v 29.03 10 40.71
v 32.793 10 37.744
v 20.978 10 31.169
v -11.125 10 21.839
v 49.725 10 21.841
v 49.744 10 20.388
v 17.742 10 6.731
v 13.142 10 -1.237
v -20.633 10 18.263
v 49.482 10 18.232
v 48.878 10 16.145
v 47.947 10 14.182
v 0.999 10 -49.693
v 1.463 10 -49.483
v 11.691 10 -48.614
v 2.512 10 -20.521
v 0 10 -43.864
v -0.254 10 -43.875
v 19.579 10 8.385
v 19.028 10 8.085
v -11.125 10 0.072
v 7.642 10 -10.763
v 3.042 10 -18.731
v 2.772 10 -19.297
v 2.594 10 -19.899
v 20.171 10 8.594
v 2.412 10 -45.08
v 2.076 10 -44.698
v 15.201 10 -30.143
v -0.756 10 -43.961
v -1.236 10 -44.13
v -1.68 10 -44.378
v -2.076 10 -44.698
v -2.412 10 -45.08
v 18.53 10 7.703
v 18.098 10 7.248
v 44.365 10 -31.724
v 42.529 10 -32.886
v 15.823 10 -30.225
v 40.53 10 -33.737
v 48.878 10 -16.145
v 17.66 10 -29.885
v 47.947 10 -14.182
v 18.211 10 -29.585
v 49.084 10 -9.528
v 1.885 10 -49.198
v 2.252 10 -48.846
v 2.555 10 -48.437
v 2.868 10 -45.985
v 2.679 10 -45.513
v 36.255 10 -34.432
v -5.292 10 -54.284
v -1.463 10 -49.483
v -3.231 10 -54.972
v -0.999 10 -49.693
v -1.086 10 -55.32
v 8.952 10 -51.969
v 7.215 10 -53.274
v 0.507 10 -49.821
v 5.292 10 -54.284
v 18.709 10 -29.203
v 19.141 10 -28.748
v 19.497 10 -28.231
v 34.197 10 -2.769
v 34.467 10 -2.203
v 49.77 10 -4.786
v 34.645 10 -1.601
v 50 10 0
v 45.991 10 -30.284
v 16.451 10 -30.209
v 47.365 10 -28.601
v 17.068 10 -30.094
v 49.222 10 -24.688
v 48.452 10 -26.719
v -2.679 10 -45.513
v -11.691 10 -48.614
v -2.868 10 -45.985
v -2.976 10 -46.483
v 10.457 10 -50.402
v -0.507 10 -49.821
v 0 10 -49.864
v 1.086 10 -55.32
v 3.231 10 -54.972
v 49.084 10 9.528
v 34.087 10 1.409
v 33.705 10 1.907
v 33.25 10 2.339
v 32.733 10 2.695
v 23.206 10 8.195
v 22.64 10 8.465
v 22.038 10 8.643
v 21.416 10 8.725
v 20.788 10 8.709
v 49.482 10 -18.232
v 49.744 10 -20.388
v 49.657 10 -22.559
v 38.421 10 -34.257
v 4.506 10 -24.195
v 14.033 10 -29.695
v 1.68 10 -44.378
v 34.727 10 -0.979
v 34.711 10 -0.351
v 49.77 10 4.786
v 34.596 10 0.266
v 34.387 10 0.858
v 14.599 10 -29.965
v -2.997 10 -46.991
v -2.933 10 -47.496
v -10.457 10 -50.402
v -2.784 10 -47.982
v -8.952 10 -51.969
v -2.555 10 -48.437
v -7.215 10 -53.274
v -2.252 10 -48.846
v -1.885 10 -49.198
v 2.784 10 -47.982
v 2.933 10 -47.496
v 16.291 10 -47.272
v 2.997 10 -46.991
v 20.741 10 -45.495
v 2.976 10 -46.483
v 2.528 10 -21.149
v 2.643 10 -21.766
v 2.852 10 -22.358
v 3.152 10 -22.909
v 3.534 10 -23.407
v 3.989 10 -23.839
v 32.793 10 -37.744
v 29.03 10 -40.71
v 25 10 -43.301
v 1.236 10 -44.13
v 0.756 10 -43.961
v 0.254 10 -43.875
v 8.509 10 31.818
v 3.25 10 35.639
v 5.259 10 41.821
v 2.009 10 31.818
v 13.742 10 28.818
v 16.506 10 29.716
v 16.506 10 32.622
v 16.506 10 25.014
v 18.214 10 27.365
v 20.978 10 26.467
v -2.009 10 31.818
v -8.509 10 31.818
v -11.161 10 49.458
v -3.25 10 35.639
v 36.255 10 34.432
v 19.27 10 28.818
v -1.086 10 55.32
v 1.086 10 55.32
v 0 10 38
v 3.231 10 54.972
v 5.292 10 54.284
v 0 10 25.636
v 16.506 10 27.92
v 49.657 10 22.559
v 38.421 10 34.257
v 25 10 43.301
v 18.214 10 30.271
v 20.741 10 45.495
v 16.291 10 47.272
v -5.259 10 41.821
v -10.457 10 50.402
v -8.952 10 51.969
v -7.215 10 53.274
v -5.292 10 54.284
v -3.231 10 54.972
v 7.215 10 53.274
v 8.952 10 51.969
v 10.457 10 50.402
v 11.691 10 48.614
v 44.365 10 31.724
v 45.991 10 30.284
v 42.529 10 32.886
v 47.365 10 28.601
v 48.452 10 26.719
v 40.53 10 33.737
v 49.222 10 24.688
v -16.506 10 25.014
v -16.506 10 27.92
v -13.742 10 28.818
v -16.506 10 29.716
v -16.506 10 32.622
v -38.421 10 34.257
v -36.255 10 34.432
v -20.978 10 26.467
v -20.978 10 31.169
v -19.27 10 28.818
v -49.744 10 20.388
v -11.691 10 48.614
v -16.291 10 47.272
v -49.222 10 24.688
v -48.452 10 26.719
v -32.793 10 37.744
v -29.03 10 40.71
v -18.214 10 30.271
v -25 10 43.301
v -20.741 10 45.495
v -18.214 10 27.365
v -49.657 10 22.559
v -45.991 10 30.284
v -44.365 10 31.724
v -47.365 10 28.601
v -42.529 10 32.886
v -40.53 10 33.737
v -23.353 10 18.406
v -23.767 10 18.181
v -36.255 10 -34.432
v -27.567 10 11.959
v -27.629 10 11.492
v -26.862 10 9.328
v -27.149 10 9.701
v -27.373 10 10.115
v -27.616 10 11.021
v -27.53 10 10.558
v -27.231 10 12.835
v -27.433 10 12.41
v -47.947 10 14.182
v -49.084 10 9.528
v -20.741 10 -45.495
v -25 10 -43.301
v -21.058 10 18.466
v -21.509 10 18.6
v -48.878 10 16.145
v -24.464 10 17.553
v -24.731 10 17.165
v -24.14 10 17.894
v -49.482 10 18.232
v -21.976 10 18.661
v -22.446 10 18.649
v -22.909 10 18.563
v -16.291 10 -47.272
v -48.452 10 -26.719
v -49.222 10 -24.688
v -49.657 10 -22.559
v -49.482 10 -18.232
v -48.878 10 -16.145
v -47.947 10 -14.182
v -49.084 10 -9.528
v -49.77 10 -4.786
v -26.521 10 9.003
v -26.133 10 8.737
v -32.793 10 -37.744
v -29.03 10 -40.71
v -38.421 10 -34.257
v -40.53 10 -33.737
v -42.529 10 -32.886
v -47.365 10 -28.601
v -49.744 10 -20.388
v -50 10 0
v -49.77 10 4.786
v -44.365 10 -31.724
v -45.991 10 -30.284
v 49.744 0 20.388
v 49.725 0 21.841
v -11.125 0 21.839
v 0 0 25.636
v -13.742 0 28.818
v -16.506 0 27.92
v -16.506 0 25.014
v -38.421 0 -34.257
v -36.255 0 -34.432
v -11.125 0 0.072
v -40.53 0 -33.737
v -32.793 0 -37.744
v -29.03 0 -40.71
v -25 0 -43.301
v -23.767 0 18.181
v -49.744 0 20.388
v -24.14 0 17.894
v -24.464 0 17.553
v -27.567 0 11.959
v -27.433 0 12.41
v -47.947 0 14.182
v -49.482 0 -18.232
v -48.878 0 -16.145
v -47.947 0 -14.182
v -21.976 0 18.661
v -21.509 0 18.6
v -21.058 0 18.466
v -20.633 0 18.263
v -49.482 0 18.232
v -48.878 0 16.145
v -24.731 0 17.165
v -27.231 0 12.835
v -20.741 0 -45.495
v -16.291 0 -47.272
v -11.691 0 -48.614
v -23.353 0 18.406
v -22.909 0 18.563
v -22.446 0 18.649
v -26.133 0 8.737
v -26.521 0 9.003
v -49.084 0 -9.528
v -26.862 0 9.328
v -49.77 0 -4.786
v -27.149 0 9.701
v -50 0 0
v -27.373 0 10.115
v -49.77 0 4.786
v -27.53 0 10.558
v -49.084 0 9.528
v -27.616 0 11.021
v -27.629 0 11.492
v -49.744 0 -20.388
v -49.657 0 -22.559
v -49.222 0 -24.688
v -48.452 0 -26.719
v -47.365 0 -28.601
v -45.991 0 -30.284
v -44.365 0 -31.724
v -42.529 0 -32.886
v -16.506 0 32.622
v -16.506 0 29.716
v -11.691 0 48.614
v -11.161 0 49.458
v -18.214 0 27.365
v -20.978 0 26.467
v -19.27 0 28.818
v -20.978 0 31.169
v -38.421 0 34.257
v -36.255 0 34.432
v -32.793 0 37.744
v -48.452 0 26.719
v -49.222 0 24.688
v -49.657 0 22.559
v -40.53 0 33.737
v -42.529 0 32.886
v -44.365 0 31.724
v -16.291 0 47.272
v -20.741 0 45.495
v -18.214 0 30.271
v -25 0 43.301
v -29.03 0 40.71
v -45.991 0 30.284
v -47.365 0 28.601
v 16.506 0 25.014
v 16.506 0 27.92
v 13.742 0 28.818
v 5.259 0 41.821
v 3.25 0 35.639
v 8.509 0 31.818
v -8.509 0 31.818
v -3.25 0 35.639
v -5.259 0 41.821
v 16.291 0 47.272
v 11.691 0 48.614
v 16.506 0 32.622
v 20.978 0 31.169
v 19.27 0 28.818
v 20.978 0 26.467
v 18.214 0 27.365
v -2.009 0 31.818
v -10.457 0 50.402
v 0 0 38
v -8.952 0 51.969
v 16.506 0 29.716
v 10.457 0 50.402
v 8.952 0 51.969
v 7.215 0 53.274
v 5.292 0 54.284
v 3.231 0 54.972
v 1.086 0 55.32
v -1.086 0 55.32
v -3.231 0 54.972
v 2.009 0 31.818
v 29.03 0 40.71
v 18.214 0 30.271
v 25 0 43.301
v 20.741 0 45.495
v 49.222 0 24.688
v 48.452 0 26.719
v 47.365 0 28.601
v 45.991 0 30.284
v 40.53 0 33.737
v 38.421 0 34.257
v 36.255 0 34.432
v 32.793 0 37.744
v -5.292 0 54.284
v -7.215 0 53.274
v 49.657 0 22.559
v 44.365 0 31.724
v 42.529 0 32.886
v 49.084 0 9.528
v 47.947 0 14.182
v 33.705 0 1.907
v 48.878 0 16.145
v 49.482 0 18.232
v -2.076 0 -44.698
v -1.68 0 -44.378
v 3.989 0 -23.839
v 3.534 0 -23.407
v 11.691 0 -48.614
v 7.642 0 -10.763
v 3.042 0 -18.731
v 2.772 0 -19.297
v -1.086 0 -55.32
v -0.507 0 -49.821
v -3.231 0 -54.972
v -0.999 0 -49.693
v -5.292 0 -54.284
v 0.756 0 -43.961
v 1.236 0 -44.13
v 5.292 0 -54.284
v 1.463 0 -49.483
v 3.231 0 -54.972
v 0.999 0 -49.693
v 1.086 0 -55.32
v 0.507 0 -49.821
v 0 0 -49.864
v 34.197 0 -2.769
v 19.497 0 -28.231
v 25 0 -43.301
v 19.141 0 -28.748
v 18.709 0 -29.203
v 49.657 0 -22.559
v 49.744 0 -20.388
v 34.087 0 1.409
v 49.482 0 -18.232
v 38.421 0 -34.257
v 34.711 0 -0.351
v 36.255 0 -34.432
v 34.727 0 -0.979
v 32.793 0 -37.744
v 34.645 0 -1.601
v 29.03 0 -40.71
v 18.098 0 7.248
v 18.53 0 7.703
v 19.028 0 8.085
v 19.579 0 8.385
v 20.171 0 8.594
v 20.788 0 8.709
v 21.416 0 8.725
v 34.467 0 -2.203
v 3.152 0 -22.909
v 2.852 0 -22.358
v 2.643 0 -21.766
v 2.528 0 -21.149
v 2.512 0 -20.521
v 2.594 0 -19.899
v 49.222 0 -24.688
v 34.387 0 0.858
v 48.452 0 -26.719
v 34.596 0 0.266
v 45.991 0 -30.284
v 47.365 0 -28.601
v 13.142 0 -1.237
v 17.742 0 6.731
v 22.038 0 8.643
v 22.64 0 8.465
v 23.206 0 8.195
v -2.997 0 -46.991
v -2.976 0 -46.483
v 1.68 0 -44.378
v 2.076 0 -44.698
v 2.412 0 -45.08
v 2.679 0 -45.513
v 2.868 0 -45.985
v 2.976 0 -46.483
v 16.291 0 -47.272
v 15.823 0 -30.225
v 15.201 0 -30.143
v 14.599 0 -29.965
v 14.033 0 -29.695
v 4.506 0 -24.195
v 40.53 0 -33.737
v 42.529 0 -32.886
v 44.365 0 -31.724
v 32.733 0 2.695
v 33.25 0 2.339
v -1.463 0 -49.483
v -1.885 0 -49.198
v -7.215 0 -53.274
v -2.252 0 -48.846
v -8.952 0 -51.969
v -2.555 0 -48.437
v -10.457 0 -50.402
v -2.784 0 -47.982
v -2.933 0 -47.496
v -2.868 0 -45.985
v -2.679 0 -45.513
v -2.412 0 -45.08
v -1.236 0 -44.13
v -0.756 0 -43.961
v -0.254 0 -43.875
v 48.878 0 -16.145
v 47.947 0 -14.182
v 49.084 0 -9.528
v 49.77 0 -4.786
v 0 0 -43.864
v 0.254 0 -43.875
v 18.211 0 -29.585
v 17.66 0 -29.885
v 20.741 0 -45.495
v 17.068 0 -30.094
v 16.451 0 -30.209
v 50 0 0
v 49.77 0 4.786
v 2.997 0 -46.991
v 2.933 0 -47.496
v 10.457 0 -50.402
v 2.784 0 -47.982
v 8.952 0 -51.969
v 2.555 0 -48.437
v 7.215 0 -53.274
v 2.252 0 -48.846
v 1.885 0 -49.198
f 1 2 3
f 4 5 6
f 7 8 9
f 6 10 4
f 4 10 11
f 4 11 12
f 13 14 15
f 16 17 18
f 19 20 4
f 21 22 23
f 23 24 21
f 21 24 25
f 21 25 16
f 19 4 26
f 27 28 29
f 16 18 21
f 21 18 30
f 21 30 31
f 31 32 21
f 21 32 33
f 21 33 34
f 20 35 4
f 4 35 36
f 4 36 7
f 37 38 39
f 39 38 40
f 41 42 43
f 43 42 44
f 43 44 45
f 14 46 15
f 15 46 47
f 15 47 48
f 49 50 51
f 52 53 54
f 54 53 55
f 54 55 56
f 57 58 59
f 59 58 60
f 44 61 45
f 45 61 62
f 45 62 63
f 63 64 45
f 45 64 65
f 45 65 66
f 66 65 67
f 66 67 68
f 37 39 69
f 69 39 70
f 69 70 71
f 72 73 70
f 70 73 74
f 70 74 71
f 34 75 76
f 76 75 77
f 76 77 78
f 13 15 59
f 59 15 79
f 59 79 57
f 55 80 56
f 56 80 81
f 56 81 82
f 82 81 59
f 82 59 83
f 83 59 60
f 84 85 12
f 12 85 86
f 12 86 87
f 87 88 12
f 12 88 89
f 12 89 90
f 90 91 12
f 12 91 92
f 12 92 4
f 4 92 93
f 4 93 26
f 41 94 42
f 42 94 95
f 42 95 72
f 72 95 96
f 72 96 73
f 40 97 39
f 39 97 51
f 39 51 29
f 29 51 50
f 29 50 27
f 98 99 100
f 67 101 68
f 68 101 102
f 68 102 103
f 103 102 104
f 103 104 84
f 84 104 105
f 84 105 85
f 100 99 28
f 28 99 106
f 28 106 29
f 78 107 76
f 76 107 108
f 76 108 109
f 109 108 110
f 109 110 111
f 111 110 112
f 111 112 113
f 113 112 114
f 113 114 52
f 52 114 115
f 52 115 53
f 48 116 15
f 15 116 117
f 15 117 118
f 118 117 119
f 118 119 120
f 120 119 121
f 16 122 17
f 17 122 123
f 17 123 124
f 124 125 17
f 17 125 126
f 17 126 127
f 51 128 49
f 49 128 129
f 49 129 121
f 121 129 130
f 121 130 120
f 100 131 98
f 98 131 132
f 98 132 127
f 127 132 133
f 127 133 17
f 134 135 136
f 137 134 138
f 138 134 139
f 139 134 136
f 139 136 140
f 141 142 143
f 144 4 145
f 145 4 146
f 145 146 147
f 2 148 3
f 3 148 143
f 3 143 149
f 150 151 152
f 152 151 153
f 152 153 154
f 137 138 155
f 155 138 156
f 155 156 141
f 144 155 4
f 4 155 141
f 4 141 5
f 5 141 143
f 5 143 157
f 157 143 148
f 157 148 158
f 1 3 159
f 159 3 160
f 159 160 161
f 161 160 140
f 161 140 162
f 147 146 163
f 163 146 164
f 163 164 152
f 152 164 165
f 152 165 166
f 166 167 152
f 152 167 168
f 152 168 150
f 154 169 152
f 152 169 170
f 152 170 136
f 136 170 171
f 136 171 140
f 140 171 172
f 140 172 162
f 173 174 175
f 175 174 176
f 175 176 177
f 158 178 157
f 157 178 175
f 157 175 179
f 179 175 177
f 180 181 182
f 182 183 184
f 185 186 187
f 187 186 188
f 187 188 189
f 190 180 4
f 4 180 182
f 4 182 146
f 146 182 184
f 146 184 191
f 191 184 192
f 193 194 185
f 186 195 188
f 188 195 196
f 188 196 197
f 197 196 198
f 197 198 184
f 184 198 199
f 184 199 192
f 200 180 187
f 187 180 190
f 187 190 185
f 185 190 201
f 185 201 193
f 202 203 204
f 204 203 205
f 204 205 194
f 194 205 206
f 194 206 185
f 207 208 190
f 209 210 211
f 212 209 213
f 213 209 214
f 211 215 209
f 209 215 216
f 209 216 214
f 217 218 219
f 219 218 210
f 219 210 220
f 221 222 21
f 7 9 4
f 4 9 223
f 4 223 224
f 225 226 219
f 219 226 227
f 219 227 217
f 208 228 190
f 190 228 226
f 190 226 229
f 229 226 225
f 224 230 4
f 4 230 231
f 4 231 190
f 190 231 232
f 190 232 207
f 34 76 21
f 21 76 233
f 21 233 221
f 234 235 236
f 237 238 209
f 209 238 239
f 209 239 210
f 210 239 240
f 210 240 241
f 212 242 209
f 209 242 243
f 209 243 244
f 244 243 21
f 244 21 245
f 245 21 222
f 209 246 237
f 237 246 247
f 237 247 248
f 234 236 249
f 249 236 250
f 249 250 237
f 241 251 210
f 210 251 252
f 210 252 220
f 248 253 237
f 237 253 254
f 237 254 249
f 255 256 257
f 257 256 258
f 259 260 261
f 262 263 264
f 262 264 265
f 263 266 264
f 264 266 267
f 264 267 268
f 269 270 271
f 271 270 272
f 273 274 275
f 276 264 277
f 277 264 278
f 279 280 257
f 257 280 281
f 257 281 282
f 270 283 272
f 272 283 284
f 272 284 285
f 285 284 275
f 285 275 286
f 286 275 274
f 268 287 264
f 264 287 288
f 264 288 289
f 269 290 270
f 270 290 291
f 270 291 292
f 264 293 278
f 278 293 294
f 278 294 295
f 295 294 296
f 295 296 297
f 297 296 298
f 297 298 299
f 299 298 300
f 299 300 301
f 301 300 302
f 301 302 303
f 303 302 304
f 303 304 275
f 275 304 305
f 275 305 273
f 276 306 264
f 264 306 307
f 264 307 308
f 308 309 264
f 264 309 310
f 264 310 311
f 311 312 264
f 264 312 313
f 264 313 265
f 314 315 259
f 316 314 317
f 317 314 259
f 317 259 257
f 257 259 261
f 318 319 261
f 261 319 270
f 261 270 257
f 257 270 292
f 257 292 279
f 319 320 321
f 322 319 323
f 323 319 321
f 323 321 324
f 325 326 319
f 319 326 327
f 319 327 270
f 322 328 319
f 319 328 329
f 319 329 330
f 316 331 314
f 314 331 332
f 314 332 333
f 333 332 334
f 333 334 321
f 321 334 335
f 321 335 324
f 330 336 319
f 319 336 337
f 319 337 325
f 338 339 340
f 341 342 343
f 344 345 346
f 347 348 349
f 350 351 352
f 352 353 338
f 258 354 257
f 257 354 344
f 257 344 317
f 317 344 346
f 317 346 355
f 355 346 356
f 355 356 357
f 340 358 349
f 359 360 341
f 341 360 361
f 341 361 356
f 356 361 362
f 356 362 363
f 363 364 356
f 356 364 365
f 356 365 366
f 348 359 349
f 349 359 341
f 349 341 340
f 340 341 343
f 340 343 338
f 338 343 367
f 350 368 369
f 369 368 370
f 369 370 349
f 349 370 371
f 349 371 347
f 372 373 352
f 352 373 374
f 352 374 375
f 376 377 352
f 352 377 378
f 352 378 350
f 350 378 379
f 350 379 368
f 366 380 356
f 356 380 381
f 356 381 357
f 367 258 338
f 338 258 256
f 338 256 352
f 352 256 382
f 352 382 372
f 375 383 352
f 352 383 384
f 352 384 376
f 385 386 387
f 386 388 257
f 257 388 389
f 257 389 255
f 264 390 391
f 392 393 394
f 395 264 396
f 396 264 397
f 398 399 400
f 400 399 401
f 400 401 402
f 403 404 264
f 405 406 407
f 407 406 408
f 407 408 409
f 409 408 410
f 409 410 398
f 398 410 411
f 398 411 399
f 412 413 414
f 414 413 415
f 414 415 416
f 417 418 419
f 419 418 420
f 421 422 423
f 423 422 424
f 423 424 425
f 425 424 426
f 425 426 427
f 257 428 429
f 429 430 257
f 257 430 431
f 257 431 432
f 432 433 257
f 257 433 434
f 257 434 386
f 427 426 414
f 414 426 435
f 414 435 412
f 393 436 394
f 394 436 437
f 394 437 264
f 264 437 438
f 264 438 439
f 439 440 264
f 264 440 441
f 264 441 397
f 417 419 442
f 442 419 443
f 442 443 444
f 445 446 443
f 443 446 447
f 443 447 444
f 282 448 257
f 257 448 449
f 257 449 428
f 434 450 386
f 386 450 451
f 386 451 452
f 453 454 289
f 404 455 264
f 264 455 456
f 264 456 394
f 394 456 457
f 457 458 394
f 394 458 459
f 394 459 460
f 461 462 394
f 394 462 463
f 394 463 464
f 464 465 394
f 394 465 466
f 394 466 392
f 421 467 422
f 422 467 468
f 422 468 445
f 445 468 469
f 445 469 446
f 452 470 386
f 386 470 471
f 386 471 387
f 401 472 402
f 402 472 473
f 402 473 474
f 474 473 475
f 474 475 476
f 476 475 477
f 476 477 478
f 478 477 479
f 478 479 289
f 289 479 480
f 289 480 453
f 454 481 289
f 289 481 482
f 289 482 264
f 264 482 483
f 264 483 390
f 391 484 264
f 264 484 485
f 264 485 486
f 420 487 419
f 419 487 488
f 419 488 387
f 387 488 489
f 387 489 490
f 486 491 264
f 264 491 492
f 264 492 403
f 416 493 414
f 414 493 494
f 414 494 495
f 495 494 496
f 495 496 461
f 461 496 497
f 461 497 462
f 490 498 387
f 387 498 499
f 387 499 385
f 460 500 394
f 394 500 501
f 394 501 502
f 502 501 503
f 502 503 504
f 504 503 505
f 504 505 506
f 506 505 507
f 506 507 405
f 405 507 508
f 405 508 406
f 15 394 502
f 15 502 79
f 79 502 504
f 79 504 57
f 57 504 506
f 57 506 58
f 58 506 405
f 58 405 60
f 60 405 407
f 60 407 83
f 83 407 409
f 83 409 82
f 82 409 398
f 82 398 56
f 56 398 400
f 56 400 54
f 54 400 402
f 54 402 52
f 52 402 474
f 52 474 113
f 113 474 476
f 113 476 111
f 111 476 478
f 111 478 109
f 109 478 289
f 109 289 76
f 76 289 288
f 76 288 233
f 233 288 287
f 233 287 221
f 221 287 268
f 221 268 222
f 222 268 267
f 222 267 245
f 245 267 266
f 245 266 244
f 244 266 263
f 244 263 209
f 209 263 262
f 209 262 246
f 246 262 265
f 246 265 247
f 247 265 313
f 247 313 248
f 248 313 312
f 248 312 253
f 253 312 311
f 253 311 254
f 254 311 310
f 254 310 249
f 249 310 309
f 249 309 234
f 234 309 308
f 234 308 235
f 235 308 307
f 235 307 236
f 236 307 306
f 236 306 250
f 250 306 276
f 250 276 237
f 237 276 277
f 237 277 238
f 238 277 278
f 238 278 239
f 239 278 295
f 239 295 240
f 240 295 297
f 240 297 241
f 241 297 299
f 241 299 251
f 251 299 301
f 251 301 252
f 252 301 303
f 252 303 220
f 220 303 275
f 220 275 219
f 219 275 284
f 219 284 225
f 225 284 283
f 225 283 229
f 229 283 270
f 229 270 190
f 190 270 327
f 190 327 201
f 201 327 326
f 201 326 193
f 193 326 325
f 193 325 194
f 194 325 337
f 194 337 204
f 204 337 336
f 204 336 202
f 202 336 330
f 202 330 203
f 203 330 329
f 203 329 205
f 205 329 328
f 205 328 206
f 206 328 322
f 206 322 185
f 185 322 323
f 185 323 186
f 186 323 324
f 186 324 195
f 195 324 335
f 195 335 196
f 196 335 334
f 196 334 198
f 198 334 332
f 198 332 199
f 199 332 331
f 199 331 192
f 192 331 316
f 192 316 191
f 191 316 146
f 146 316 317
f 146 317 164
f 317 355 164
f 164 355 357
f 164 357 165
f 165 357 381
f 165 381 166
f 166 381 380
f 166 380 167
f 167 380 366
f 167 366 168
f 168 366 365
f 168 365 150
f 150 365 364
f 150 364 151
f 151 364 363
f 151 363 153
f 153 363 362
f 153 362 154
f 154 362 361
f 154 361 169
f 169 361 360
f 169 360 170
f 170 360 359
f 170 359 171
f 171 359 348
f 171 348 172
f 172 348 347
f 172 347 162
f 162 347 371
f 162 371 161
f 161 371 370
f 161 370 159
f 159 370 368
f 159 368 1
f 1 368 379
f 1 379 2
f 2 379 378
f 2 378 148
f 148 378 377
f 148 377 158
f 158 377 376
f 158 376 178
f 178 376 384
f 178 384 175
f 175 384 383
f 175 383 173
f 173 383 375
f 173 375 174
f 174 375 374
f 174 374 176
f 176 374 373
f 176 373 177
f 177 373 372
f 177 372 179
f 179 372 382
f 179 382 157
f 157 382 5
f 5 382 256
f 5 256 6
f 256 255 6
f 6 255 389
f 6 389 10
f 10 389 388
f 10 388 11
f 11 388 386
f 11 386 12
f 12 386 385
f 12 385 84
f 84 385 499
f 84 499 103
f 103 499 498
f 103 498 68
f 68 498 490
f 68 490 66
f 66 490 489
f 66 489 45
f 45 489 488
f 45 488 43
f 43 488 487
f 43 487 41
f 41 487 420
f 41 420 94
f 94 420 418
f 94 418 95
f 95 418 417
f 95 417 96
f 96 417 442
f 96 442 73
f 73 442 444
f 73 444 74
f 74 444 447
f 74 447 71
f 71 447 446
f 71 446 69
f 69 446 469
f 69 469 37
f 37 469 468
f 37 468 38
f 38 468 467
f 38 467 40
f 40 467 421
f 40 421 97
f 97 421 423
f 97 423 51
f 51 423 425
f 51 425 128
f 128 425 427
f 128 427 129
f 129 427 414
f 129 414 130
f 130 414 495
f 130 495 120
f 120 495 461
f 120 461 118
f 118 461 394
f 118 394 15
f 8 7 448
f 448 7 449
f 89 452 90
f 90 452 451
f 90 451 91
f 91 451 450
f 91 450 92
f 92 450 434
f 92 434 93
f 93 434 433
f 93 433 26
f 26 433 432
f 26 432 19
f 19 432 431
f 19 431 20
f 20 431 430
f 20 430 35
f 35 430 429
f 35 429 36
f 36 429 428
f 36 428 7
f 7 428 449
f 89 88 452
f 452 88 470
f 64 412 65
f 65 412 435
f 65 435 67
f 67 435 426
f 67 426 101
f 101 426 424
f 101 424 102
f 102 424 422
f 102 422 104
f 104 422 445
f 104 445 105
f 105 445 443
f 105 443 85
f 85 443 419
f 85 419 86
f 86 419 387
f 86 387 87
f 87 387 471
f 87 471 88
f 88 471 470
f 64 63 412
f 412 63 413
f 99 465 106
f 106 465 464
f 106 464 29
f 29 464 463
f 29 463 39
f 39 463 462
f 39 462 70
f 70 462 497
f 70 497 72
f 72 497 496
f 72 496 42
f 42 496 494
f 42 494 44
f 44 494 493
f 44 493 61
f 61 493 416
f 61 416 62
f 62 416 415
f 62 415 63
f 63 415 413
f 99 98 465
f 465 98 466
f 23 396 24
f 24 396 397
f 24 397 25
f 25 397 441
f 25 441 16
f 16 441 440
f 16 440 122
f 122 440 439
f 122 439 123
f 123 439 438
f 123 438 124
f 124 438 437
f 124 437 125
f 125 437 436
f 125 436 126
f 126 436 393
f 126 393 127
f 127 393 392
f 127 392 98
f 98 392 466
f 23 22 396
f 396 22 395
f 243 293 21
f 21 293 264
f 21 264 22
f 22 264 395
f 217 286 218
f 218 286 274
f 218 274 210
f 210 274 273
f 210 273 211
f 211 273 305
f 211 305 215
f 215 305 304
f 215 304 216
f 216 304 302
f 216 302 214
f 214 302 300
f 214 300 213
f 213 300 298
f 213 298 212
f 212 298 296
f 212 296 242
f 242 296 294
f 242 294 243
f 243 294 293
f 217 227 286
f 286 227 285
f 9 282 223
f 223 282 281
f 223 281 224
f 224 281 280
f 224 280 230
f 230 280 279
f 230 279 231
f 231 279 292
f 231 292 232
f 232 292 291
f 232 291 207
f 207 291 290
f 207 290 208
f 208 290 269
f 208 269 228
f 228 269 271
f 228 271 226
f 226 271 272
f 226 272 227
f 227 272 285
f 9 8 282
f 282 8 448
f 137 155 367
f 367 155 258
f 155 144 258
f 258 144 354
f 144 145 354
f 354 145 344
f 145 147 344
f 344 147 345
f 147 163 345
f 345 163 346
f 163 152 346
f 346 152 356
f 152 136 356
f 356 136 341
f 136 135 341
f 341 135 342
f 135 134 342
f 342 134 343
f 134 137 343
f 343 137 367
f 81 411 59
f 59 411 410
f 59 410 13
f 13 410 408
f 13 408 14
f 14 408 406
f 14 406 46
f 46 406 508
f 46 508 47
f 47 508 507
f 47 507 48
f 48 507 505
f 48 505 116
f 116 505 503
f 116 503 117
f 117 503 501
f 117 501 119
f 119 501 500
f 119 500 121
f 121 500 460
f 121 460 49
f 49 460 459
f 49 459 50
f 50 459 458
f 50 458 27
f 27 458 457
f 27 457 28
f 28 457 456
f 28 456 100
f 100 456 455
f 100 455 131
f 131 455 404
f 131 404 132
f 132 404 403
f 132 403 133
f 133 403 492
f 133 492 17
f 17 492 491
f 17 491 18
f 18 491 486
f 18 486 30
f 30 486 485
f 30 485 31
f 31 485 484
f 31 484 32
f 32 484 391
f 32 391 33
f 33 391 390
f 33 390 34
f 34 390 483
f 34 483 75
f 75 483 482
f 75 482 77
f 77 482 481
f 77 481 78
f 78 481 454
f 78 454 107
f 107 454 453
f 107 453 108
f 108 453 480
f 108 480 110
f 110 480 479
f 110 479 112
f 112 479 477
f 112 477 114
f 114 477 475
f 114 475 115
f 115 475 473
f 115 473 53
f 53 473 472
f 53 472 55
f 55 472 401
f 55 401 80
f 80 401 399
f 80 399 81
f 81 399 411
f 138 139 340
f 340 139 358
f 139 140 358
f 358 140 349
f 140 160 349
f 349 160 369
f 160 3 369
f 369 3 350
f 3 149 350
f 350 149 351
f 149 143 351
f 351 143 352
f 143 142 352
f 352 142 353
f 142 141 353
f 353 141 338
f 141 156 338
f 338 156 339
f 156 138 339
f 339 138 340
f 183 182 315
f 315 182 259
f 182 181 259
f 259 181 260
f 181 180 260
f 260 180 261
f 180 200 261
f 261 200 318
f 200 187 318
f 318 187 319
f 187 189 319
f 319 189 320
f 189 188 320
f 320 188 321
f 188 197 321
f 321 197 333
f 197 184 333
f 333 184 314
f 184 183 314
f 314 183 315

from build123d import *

# Parameters (mm, degrees)
SKETCH1_R           = 3
BOSS_EXTRUDE1_DEPTH = 10


with BuildPart() as part:
    # Sketch1 → Boss-Extrude1 (new body)
    with BuildSketch(Plane(origin=(0, 0, 0), x_dir=(1, 0, 0), z_dir=(0, 1, 0))):
        with BuildLine():
            ThreePointArc((-11.691342951, 48.613912618), (-25, 43.301270189), (-36.255211829, 34.431956309))
            ThreePointArc((-36.255211829, 34.431956309), (-47.94655478, 27.681956309), (-47.94655478, 14.181956309))
            ThreePointArc((-47.94655478, 14.181956309), (-50, 0), (-47.94655478, -14.181956309))
            ThreePointArc((-47.94655478, -14.181956309), (-47.94655478, -27.681956309), (-36.255211829, -34.431956309))
            ThreePointArc((-36.255211829, -34.431956309), (-25, -43.301270189), (-11.691342951, -48.613912618))
            ThreePointArc((-11.691342951, -48.613912618), (0, -55.363912618), (11.691342951, -48.613912618))
            ThreePointArc((11.691342951, -48.613912618), (25, -43.301270189), (36.255211829, -34.431956309))
            ThreePointArc((36.255211829, -34.431956309), (47.94655478, -27.681956309), (47.94655478, -14.181956309))
            ThreePointArc((47.94655478, -14.181956309), (50, 0), (47.94655478, 14.181956309))
            ThreePointArc((47.94655478, 14.181956309), (47.94655478, 27.681956309), (36.255211829, 34.431956309))
            ThreePointArc((36.255211829, 34.431956309), (25, 43.301270189), (11.691342951, 48.613912618))
            ThreePointArc((11.691342951, 48.613912618), (0, 55.363912618), (-11.691342951, 48.613912618))
        make_face()
        with Locations(Location((0, 46.863912618, 0), (0, 0, 270))):
            Circle(SKETCH1_R, mode=Mode.SUBTRACT)
        with BuildLine():
            Line((-27.230762114, -12.834936491), (-24.730762114, -17.165063509))
            ThreePointArc((-24.730762114, -17.165063509), (-22.909143037, -18.562840988), (-20.632685902, -18.263139721))
            Line((-20.632685902, -18.263139721), (13.142304845, 1.236860279))
            Line((13.142304845, 1.236860279), (17.742304845, -6.730573436))
            ThreePointArc((17.742304845, -6.730573436), (20.17113028, -8.594276741), (23.206406461, -8.194675051))
            Line((23.206406461, -8.194675051), (32.732685902, -2.694675051))
            ThreePointArc((32.732685902, -2.694675051), (34.596389207, -0.265849616), (34.196787517, 2.769426564))
            Line((34.196787517, 2.769426564), (19.496787517, 28.230573436))
            ThreePointArc((19.496787517, 28.230573436), (17.067962083, 30.094276741), (14.032685902, 29.694675051))
            Line((14.032685902, 29.694675051), (4.506406461, 24.194675051))
            ThreePointArc((4.506406461, 24.194675051), (2.642703155, 21.765849616), (3.042304845, 18.730573436))
            Line((3.042304845, 18.730573436), (7.642304845, 10.763139721))
            Line((7.642304845, 10.763139721), (-26.132685902, -8.736860279))
            ThreePointArc((-26.132685902, -8.736860279), (-27.530463381, -10.558479355), (-27.230762114, -12.834936491))
        make_face(mode=Mode.SUBTRACT)
        Polygon((-2.008610463, -31.818132644), (0, -25.636265288), (2.008610463, -31.818132644), (8.508610463, -31.818132644), (3.25, -35.638736784), (5.258610463, -41.82060414), (0, -38), (-5.258610463, -41.82060414), (-3.25, -35.638736784), (-8.508610463, -31.818132644), align=None, mode=Mode.SUBTRACT)
        Polygon((13.742304845, -28.81792347), (16.506236868, -27.919867517), (16.506236868, -25.013697405), (18.2144408, -27.364838414), (20.978372823, -26.466782461), (19.27016889, -28.81792347), (20.978372823, -31.16906448), (18.2144408, -30.271008526), (16.506236868, -32.622149536), (16.506236868, -29.715979424), align=None, mode=Mode.SUBTRACT)
        Polygon((-13.742304845, -28.81792347), (-16.506236868, -27.919867517), (-16.506236868, -25.013697405), (-18.2144408, -27.364838414), (-20.978372823, -26.466782461), (-19.27016889, -28.81792347), (-20.978372823, -31.16906448), (-18.2144408, -30.271008526), (-16.506236868, -32.622149536), (-16.506236868, -29.715979424), align=None, mode=Mode.SUBTRACT)
    extrude(amount=BOSS_EXTRUDE1_DEPTH)


solid = part.part
